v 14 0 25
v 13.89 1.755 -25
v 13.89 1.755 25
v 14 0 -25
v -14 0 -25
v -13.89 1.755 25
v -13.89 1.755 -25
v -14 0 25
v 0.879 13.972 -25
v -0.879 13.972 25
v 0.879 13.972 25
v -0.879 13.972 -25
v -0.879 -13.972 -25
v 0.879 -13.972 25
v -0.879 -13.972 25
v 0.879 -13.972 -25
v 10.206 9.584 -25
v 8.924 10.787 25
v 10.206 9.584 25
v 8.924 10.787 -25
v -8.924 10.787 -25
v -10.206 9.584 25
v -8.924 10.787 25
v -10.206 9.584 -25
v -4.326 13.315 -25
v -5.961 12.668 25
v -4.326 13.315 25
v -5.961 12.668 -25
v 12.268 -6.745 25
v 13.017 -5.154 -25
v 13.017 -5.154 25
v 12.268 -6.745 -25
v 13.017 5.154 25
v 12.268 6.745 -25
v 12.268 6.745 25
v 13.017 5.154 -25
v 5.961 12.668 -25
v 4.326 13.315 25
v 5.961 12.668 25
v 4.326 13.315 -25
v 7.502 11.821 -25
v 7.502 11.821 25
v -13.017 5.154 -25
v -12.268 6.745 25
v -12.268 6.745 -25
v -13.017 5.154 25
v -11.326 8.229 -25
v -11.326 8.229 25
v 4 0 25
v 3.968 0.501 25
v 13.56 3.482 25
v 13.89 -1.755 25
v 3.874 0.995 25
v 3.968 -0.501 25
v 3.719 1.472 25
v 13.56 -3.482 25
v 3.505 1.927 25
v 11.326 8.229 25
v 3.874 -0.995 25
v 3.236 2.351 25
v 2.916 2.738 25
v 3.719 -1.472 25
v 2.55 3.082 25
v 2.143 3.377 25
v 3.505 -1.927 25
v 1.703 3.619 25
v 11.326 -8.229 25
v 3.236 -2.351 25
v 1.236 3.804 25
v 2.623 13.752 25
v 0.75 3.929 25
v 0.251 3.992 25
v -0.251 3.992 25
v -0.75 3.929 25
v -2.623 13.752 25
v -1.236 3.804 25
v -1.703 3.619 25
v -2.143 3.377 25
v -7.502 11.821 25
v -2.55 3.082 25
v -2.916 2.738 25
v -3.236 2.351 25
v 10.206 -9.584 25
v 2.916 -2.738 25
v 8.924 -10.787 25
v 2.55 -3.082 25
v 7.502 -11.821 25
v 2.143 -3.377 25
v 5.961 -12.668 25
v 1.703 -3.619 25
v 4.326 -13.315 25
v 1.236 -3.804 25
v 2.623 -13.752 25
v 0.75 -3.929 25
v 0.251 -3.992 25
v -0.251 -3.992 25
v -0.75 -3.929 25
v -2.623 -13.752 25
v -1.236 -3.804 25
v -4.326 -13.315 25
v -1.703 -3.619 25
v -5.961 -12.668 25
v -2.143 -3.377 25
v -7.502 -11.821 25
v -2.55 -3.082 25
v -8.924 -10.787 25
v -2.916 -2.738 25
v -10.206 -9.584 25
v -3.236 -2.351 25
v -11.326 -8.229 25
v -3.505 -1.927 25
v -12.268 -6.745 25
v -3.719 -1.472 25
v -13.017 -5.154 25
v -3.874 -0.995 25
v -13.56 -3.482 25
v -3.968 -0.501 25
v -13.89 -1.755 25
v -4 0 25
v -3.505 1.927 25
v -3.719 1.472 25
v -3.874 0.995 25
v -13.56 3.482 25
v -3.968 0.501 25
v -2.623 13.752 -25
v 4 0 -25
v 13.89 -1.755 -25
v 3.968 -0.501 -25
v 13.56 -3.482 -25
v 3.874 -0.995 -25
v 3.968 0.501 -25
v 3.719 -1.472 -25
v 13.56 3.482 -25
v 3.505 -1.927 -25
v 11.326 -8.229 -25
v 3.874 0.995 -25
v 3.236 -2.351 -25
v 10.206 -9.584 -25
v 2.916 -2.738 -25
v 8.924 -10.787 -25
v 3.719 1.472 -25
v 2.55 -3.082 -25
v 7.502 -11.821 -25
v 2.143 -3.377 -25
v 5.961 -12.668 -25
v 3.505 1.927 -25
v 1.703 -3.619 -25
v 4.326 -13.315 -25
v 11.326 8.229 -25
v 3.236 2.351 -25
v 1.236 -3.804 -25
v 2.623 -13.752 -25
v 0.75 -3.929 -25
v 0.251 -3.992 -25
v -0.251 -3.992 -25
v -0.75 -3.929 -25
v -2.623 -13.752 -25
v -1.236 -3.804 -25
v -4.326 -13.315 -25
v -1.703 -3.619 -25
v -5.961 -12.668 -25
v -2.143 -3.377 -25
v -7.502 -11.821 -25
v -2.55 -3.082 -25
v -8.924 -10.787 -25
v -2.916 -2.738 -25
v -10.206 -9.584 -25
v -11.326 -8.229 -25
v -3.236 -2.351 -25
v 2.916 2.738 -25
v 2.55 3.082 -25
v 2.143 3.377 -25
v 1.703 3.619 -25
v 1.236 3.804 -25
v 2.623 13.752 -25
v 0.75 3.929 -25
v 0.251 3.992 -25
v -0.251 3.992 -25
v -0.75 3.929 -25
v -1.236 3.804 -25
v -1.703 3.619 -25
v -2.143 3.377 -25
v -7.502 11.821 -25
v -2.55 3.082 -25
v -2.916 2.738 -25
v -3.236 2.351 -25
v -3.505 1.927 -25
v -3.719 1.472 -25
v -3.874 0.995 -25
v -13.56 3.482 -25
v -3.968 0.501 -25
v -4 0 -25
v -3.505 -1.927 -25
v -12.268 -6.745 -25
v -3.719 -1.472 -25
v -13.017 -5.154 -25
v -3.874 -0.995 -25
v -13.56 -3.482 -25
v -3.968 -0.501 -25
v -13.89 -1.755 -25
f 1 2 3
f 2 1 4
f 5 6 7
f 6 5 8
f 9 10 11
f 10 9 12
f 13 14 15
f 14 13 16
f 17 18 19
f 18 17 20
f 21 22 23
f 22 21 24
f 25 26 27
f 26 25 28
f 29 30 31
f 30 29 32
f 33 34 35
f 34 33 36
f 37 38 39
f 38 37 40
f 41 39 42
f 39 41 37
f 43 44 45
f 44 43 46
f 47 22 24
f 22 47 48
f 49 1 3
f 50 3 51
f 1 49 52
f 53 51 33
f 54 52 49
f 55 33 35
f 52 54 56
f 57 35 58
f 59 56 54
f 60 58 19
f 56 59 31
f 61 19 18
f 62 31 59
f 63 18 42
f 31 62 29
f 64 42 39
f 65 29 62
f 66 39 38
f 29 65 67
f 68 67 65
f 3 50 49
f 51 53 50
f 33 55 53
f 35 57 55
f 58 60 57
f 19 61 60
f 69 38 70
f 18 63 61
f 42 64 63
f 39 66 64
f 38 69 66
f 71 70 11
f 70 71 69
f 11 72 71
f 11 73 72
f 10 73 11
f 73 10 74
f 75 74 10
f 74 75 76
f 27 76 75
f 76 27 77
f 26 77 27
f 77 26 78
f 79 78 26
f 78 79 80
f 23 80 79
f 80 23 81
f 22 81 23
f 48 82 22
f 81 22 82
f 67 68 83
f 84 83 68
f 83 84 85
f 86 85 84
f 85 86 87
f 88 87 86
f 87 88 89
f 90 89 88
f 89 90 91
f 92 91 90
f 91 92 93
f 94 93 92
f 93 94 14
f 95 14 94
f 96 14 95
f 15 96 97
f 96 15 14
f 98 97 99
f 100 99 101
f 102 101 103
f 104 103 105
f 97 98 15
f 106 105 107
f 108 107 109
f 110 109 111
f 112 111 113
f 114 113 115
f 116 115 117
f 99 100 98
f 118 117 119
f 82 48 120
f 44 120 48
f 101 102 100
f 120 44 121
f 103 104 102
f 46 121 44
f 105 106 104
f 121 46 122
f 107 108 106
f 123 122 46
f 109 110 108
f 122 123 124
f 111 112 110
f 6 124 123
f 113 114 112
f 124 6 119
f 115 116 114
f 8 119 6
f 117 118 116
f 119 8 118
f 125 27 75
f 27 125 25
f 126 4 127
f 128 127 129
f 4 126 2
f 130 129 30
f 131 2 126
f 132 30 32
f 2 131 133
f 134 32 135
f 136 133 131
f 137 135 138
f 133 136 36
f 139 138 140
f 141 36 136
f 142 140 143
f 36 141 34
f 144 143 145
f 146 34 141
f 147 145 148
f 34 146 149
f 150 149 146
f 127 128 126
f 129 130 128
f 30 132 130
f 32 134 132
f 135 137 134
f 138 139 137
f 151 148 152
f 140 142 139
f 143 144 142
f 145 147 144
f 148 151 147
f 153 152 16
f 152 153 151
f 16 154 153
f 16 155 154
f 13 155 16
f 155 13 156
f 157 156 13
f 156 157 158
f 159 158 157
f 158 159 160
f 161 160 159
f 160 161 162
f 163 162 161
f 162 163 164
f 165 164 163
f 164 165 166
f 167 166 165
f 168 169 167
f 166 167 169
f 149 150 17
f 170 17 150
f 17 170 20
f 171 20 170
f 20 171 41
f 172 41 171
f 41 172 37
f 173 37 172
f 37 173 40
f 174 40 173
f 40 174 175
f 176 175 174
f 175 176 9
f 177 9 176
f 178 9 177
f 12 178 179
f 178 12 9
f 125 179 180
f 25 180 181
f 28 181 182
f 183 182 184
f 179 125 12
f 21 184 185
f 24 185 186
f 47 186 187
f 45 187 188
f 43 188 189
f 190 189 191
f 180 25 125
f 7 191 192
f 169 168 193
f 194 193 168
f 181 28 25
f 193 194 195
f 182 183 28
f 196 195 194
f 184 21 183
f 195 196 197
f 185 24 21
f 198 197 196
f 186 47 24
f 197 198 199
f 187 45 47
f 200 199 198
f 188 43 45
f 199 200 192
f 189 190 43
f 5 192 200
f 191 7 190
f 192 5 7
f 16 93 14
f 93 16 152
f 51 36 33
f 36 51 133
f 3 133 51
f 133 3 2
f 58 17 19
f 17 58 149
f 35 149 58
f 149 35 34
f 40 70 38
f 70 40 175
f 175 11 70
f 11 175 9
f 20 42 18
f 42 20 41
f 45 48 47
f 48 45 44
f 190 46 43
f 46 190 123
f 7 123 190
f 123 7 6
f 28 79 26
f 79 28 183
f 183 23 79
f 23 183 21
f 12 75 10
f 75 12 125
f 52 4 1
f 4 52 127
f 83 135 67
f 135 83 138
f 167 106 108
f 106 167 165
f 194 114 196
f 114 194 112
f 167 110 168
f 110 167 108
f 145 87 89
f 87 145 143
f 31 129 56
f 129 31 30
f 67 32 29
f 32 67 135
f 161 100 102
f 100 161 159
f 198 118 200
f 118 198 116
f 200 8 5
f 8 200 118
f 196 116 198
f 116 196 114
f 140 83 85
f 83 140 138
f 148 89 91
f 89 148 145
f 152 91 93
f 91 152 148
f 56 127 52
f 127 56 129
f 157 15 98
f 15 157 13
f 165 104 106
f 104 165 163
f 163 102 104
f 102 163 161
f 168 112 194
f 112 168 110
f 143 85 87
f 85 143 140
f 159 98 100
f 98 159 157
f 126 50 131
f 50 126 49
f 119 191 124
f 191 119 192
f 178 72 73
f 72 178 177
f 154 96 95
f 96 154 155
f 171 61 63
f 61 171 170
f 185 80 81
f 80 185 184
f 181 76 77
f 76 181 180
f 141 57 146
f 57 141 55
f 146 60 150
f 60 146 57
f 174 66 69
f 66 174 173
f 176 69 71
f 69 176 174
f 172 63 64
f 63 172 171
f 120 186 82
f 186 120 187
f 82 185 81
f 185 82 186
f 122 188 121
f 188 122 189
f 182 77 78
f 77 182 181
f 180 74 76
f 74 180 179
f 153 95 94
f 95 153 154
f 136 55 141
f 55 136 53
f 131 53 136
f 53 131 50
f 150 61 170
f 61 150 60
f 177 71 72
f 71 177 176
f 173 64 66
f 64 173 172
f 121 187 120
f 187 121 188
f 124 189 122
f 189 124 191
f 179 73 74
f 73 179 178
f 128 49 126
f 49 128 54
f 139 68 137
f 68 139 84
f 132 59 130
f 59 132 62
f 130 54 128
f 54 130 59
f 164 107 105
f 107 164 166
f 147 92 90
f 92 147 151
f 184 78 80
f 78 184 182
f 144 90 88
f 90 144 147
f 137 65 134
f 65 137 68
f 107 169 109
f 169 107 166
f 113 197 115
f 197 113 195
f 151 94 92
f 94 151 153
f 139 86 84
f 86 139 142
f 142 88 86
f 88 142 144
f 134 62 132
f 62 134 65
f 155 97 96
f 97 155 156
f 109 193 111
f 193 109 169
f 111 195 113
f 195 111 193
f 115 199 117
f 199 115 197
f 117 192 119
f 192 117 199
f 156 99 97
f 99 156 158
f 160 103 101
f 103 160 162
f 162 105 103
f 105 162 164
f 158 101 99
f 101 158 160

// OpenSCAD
$fn = 50;


difference() {
	union() {
		translate(v = [0, 0, -25.0000000000]) {
			cylinder(h = 50, r = 14.0000000000);
		}
	}
	union() {
		translate(v = [0, 0, -100.0000000000]) {
			cylinder(h = 200, r = 4.0000000000);
		}
	}
}
